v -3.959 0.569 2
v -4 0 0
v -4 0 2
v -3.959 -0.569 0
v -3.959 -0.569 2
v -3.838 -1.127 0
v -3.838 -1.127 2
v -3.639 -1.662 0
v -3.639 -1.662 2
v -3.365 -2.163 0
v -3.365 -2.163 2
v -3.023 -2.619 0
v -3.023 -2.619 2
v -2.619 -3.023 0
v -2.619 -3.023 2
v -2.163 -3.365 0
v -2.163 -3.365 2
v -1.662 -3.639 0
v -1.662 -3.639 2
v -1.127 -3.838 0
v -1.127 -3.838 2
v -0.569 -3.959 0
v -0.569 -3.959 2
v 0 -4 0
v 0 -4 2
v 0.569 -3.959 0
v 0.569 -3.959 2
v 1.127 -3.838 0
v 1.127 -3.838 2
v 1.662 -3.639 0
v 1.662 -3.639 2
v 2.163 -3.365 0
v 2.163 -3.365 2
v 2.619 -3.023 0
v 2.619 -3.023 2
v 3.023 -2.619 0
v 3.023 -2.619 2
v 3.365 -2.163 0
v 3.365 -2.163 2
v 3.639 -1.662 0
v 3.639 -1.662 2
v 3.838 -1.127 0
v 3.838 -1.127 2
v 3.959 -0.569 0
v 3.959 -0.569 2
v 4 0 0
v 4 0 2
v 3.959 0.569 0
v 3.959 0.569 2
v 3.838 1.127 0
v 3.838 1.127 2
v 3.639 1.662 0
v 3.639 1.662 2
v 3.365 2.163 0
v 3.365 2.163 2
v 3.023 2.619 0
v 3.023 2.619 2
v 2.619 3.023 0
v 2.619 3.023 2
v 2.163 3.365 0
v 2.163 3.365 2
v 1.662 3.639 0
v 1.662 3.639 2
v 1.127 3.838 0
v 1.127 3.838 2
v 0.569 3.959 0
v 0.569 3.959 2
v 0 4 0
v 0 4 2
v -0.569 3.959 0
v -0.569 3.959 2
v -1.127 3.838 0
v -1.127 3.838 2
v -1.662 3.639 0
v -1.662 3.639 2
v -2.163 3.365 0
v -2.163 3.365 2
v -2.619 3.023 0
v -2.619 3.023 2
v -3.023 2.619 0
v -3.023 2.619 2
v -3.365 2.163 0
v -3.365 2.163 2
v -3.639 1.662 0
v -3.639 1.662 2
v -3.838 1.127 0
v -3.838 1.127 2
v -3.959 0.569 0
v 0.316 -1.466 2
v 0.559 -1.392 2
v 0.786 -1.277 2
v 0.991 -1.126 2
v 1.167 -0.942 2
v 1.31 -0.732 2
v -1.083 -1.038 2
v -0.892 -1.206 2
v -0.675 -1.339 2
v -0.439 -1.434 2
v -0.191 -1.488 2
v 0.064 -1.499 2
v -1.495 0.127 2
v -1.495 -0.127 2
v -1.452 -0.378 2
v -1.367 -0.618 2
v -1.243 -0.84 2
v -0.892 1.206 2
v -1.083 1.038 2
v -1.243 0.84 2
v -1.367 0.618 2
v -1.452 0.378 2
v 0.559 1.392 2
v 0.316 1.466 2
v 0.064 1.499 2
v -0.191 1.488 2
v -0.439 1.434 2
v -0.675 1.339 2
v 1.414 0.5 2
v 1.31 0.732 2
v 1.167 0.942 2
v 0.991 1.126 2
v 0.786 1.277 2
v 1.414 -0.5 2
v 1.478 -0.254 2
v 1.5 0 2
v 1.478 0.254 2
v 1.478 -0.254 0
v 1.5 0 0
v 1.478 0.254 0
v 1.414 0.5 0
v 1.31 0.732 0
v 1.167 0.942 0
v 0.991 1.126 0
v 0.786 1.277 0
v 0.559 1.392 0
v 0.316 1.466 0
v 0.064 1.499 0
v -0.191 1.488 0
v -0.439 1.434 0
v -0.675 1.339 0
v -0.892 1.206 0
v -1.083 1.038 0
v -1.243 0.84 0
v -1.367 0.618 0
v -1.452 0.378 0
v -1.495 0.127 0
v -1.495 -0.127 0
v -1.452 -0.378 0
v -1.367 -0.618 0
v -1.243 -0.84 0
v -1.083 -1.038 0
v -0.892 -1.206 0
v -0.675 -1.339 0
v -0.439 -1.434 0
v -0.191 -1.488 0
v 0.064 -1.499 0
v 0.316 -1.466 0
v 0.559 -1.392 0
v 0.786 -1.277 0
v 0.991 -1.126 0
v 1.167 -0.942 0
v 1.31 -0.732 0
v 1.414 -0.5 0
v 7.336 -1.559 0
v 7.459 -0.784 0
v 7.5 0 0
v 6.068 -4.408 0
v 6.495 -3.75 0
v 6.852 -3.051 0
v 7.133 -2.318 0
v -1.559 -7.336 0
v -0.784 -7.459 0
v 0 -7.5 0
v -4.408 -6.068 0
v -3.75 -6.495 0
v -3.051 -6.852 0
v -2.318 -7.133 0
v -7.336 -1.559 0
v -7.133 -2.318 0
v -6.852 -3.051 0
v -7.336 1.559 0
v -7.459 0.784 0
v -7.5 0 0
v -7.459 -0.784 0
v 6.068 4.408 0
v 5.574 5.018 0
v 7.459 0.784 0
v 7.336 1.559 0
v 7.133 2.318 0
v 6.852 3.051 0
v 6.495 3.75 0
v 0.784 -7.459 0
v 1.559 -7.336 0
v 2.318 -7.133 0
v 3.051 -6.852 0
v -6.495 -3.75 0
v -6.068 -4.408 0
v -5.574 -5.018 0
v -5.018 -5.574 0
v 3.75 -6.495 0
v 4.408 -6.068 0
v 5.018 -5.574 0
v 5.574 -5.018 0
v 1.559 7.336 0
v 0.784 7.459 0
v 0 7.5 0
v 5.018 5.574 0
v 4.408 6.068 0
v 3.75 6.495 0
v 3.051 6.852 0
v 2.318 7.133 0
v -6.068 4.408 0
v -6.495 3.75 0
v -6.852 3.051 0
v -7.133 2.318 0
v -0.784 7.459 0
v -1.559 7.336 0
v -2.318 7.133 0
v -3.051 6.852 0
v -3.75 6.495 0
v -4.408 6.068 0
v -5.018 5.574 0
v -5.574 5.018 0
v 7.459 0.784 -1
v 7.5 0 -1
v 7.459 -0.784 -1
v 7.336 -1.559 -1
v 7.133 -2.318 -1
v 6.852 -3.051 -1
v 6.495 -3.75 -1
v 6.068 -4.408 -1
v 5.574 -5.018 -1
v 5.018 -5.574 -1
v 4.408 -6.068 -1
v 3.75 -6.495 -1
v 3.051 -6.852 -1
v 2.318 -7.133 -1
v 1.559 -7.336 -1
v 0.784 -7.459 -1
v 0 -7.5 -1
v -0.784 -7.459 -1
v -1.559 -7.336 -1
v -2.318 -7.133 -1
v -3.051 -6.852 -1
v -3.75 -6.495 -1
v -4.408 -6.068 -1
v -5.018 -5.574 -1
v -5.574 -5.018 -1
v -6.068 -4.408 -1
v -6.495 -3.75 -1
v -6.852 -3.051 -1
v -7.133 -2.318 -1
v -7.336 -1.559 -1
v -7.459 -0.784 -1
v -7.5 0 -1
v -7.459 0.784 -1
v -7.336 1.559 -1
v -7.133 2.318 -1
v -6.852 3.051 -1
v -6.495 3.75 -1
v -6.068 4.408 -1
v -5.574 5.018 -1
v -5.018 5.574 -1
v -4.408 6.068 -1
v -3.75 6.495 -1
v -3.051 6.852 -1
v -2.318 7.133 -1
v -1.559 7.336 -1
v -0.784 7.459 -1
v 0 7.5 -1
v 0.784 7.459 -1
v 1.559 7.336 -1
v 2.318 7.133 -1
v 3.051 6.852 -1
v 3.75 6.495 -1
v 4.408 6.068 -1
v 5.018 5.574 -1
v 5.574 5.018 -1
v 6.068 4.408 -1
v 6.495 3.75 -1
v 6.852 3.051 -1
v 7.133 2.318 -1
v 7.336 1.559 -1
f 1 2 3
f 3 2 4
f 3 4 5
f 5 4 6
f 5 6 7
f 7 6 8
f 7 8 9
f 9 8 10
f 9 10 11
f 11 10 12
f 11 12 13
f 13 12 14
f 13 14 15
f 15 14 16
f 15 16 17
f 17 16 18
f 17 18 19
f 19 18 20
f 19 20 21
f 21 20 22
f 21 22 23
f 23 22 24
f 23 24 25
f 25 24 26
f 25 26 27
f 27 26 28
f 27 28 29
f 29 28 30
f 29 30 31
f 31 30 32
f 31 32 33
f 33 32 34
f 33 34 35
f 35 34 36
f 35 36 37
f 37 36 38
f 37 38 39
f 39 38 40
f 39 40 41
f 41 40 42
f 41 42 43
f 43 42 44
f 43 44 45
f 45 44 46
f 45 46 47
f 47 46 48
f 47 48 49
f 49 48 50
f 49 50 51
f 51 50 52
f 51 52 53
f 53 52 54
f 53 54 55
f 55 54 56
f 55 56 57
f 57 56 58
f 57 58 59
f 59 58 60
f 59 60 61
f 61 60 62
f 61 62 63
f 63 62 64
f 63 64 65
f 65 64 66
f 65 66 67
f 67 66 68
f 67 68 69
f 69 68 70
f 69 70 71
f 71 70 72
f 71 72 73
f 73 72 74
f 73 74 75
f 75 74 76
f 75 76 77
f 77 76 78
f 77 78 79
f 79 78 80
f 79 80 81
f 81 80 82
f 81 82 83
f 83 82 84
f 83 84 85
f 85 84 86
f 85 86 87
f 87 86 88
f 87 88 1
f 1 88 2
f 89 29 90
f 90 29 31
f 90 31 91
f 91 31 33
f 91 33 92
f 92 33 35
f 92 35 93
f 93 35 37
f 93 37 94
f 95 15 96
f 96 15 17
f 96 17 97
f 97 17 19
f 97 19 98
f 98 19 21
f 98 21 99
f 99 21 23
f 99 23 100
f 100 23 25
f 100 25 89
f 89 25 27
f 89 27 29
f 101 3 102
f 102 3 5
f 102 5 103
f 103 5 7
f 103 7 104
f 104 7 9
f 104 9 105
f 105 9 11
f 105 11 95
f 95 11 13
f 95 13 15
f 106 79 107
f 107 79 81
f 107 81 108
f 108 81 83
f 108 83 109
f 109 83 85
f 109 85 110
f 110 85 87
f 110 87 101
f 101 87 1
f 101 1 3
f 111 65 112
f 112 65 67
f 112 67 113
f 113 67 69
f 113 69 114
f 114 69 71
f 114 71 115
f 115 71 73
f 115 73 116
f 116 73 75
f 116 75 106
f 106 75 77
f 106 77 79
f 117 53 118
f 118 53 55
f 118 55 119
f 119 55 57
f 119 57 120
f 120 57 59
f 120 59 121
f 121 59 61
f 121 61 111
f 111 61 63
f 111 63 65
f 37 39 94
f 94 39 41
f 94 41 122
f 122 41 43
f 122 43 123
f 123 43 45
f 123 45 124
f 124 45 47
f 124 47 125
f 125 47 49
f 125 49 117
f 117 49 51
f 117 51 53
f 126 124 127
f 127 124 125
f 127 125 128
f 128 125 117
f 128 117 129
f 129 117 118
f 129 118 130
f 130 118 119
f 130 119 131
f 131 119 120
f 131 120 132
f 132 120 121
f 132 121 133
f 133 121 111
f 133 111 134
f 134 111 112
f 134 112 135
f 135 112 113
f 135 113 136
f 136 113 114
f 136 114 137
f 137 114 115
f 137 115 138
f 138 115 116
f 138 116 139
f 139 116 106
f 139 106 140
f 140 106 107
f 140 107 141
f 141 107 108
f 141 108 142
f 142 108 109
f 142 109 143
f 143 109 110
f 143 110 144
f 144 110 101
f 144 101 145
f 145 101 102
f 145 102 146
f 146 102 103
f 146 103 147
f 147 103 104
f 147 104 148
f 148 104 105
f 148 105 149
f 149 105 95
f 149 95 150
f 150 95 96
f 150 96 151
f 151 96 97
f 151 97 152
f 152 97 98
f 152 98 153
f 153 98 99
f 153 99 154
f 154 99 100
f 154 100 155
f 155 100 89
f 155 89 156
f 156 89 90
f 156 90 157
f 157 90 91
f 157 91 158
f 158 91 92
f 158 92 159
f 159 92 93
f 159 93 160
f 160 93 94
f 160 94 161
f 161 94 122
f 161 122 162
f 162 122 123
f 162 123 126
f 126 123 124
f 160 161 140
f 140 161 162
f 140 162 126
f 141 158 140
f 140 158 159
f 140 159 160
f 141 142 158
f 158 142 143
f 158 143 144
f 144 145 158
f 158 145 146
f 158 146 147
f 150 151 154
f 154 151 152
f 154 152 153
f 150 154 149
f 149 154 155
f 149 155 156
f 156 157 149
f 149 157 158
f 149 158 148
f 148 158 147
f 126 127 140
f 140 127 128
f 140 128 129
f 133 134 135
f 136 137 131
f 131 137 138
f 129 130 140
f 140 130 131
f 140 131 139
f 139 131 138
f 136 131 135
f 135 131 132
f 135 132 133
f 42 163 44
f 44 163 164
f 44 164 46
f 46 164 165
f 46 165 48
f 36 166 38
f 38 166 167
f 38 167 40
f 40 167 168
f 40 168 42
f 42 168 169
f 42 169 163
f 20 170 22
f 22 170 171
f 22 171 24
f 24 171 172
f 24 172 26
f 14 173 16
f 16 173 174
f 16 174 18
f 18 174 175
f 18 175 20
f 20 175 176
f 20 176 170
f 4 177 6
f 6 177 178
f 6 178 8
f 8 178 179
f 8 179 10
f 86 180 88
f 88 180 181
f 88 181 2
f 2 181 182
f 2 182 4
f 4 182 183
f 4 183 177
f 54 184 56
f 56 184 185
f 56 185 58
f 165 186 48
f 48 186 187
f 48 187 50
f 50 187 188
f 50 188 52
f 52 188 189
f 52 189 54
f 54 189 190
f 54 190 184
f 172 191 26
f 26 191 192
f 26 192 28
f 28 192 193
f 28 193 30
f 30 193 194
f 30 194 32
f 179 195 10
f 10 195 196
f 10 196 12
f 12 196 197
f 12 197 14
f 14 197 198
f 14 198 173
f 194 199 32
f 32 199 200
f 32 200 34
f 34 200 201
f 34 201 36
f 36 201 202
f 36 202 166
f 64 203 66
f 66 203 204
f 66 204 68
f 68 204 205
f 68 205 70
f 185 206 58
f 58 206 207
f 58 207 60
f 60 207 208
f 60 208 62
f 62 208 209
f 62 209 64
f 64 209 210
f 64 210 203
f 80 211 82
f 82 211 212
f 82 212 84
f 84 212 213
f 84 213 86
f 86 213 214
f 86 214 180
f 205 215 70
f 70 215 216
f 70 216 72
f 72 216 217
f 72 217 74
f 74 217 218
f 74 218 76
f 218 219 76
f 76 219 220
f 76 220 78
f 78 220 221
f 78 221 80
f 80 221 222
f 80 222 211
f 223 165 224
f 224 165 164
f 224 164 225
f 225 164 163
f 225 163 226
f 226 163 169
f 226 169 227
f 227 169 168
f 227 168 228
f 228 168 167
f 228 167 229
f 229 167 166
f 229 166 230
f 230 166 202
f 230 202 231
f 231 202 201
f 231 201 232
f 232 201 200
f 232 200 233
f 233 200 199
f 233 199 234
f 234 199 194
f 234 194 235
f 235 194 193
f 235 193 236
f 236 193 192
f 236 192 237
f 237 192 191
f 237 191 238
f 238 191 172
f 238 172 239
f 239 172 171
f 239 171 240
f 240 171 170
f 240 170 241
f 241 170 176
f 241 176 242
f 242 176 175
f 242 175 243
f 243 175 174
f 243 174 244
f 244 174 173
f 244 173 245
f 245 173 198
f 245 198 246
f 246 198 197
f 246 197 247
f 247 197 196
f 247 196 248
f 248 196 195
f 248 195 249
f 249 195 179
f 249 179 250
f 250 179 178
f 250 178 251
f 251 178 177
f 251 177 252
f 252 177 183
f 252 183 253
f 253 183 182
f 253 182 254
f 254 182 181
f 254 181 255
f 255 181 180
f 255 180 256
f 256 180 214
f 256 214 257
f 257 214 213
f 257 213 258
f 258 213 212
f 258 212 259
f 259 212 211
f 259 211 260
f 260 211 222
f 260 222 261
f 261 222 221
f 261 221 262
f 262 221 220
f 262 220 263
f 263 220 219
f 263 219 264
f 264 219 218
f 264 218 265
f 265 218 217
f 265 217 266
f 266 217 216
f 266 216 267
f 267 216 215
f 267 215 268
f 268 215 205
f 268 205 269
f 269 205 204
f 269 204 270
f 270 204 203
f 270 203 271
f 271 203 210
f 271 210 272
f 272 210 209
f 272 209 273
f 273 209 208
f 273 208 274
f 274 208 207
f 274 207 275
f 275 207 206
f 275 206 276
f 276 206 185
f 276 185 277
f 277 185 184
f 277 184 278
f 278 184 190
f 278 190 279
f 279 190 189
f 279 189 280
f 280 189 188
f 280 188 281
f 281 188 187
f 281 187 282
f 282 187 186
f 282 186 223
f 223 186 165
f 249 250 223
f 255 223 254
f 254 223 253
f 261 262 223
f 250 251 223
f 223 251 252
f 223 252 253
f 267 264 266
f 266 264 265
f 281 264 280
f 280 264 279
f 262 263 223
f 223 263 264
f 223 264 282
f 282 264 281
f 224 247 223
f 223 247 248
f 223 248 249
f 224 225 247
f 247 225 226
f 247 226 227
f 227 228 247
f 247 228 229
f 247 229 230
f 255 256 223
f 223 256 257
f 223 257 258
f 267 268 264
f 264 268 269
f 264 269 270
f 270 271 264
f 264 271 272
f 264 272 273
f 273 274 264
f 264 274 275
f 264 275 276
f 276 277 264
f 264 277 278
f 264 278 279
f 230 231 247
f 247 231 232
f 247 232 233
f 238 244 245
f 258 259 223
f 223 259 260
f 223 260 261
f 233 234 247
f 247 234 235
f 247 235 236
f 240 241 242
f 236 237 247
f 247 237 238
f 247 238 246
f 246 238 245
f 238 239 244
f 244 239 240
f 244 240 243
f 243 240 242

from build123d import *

# Parameters (mm, degrees)
ESQUISSE1_R             = 4
BOSS_EXTRU_1_DEPTH      = 2
ESQUISSE2_R             = 1.5
ENL_V_MAT_EXTRU_1_DEPTH = 2.5
ESQUISSE3_R             = 7.5
BOSS_EXTRU_2_DEPTH      = 1


with BuildPart() as part:
    # Esquisse1 → Boss.-Extru.1 (new body)
    with BuildSketch(Plane.XY):
        Circle(ESQUISSE1_R)
    extrude(amount=BOSS_EXTRU_1_DEPTH)

    # Esquisse2 → Enlèv. mat.-Extru.1 (cut)
    with BuildSketch(Plane.XY.offset(2)):
        Circle(ESQUISSE2_R)
    extrude(amount=-ENL_V_MAT_EXTRU_1_DEPTH, mode=Mode.SUBTRACT)

    # Esquisse3 → Boss.-Extru.2 (add)
    with BuildSketch(Plane(origin=(0, 0, 0), x_dir=(-1, 0, 0), z_dir=(0, 0, -1))):
        Circle(ESQUISSE3_R)
    extrude(amount=BOSS_EXTRU_2_DEPTH)


solid = part.part
